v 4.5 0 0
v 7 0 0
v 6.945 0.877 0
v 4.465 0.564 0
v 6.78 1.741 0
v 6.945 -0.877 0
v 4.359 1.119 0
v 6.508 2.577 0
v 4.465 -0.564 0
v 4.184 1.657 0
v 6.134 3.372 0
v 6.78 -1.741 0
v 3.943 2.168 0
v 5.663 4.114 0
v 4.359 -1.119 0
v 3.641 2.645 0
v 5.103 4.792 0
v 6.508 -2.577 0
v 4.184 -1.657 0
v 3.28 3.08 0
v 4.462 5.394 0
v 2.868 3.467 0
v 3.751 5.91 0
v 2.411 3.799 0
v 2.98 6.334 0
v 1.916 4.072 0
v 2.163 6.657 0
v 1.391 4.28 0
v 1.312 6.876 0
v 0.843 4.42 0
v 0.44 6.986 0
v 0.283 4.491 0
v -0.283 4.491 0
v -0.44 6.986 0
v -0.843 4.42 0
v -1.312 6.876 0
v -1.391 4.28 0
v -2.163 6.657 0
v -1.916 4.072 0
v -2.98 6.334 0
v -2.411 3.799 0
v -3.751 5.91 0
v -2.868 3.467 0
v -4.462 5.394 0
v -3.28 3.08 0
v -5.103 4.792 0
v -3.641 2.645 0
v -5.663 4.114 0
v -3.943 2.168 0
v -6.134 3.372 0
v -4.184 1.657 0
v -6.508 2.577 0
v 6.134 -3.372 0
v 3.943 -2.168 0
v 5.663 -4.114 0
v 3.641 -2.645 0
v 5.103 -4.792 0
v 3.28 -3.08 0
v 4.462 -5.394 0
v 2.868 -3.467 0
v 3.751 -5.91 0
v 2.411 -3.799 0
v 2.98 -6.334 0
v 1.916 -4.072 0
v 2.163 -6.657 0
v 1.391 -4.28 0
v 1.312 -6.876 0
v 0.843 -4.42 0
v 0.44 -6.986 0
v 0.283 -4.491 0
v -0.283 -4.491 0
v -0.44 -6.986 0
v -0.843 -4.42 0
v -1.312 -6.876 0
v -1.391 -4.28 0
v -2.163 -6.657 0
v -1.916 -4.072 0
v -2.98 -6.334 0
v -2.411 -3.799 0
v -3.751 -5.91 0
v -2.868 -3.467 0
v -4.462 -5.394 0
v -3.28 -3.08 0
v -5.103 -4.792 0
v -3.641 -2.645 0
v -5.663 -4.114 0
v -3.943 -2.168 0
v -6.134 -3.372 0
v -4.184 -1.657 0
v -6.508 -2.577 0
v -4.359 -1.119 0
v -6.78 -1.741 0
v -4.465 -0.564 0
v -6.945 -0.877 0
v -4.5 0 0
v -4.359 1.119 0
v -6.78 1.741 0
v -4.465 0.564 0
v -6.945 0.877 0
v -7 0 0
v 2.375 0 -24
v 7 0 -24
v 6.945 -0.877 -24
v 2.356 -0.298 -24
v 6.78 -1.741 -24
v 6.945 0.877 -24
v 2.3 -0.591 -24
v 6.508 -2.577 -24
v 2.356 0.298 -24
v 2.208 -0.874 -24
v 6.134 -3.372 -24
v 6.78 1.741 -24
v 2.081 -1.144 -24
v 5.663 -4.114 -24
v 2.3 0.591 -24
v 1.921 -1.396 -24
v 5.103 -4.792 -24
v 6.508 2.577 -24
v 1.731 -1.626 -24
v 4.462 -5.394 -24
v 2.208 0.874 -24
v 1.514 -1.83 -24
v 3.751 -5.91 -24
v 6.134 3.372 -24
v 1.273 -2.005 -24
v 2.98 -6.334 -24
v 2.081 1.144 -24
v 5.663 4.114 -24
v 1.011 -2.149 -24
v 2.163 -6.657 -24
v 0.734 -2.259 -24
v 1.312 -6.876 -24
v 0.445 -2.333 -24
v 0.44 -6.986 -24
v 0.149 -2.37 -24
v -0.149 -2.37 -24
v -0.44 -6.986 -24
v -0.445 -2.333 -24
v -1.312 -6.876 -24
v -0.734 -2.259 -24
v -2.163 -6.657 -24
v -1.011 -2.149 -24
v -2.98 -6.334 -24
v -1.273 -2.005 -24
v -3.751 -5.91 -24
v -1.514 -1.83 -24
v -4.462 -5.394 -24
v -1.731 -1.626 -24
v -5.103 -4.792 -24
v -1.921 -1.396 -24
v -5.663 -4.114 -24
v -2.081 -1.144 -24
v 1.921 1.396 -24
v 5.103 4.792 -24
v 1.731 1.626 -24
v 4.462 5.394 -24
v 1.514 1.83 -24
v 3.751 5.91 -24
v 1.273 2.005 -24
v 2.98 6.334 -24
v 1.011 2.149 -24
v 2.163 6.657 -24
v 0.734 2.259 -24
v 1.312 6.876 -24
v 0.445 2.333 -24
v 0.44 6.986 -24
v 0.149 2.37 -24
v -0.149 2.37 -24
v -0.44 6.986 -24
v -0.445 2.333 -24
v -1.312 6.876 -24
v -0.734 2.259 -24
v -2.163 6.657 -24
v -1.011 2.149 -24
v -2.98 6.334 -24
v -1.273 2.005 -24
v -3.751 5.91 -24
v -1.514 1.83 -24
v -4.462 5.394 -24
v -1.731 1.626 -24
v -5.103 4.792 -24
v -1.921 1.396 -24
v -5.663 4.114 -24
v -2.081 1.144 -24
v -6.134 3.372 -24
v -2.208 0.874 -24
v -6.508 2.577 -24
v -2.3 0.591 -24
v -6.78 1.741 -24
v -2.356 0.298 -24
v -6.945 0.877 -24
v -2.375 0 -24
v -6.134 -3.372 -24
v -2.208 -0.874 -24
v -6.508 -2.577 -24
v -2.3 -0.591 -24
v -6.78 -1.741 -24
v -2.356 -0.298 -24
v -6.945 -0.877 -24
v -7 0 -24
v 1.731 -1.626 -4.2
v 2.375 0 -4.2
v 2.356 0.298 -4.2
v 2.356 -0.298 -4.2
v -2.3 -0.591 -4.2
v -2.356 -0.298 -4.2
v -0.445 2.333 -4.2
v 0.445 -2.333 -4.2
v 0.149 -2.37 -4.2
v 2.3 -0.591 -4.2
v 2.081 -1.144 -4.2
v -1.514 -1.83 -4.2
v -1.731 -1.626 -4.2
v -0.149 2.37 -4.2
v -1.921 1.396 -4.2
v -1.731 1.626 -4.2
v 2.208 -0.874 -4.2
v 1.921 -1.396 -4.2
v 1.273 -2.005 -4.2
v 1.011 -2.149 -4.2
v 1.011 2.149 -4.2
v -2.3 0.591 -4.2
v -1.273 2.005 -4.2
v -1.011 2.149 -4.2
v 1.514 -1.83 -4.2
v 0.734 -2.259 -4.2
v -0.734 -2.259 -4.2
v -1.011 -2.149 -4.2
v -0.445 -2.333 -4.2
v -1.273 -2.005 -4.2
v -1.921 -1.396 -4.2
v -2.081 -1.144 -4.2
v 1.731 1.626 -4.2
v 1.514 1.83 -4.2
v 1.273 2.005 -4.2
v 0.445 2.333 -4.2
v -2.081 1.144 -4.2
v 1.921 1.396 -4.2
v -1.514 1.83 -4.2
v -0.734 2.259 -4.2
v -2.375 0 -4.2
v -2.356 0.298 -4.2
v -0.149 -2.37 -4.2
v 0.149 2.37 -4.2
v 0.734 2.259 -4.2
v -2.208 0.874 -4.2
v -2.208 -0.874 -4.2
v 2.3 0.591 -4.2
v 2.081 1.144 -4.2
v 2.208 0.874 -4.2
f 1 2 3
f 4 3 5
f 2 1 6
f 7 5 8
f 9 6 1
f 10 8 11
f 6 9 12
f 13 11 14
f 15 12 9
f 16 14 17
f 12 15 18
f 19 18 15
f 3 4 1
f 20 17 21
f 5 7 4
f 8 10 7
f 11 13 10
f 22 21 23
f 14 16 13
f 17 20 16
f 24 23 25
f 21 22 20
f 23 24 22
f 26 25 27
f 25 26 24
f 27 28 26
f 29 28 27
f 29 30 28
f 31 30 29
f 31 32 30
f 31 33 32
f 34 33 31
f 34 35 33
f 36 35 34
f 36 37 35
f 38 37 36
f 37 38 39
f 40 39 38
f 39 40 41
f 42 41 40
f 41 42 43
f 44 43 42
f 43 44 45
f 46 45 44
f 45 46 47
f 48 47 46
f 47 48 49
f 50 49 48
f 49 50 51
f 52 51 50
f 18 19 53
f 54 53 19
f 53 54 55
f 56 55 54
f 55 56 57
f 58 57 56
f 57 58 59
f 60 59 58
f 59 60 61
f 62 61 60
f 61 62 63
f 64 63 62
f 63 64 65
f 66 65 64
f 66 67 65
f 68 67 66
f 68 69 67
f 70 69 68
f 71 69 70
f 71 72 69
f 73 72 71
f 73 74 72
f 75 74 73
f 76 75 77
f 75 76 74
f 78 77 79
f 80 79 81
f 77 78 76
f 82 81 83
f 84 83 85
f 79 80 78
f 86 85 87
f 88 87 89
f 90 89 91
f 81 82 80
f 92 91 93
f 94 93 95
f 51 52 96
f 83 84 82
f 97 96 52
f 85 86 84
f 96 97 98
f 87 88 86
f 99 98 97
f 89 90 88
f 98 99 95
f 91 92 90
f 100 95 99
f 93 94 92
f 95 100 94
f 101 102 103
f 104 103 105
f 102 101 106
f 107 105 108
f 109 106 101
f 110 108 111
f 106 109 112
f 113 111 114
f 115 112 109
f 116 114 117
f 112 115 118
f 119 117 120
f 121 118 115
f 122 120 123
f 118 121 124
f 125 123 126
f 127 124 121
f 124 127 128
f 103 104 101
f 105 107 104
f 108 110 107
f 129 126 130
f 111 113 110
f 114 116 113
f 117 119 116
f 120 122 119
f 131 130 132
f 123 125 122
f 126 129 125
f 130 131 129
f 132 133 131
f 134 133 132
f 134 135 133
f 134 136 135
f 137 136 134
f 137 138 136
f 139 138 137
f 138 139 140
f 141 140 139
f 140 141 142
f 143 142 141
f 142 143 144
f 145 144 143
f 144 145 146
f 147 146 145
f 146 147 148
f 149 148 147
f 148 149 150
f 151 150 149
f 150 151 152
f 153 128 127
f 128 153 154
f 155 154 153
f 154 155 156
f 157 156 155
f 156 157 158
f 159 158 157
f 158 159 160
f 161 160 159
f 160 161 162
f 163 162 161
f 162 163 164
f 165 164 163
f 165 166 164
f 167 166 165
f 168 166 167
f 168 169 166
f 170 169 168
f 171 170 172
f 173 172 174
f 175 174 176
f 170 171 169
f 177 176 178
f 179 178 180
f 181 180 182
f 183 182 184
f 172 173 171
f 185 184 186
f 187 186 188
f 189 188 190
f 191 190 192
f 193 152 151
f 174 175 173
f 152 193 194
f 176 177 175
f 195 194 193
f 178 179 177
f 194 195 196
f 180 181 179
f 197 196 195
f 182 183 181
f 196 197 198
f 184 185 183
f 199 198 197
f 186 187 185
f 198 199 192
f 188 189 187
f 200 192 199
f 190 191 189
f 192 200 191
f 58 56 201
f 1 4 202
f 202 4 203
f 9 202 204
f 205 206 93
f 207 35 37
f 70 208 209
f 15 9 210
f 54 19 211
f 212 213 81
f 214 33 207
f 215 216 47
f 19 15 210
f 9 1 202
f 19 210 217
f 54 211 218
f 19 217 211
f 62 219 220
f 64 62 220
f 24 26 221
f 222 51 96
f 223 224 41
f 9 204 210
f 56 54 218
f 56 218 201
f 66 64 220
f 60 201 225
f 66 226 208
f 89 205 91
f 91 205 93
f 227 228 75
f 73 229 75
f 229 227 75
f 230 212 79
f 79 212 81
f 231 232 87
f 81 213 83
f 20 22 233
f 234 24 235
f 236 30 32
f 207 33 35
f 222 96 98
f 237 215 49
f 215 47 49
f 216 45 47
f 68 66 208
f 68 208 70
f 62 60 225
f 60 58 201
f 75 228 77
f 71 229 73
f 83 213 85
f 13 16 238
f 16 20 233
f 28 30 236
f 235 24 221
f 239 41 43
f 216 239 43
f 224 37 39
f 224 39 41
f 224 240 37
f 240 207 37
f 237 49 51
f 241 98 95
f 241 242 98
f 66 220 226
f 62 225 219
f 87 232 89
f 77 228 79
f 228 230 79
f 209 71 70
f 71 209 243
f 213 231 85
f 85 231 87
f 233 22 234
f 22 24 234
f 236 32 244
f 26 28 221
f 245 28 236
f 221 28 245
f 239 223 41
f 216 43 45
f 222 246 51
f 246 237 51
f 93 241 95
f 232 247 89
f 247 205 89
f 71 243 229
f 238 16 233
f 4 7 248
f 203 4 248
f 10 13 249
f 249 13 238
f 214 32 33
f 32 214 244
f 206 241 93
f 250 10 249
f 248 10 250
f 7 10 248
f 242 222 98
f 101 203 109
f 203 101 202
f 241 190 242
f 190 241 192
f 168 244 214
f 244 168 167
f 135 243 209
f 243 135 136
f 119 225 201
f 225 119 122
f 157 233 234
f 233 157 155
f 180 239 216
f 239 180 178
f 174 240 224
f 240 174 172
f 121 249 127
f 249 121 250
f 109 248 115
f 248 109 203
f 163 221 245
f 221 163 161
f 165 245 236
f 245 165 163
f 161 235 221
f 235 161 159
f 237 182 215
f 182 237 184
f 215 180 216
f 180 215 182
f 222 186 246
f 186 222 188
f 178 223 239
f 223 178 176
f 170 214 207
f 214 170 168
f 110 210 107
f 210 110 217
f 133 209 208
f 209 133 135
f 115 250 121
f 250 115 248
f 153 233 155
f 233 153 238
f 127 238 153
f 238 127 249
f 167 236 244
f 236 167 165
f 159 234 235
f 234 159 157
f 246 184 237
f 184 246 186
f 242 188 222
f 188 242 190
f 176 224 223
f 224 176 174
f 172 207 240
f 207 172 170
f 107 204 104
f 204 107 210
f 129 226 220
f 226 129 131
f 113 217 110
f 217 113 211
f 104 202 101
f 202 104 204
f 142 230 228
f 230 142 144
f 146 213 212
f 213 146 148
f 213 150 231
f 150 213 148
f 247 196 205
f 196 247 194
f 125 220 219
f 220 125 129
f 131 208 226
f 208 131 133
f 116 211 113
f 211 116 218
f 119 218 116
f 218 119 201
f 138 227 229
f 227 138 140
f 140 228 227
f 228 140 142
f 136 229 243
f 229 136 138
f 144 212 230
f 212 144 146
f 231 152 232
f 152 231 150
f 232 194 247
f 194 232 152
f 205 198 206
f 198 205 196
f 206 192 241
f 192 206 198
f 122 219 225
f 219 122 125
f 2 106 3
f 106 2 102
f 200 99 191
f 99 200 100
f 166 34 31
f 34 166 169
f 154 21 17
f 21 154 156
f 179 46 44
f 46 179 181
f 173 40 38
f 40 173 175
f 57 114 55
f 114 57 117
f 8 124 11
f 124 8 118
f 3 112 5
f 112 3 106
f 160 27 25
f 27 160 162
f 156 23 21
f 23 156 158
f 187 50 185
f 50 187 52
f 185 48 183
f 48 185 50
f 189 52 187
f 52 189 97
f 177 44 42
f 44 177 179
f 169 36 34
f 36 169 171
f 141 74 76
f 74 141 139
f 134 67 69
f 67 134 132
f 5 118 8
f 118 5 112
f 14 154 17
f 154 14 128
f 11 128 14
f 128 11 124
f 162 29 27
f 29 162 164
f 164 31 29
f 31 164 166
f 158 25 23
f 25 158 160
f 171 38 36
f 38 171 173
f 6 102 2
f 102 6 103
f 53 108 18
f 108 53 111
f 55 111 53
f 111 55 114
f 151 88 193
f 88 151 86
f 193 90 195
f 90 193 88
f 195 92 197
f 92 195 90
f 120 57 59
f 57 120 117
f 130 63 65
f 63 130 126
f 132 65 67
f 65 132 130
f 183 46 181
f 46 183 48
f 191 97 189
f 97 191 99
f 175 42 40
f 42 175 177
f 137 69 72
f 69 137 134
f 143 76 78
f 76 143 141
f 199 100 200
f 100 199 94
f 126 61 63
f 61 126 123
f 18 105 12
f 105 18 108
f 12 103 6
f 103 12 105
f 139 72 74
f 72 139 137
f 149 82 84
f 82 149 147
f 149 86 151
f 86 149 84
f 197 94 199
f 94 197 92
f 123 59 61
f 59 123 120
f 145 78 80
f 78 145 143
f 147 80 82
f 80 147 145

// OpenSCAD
$fn = 50;


difference() {
	union() {
		translate(v = [0, 0, -24.0000000000]) {
			cylinder(h = 24, r = 7.0000000000);
		}
		cylinder(h = 0, r = 17.0000000000);
	}
	union() {
		translate(v = [0, 0, 0]) {
			rotate(a = [0, 0, 0]) {
				difference() {
					union() {
						#translate(v = [0, 0, -24.0000000000]) {
							cylinder(h = 24, r = 2.2500000000);
						}
						#translate(v = [0, 0, -4.2000000000]) {
							cylinder(h = 4.2000000000, r = 7.0000000000, r1 = 2.3750000000, r2 = 4.5000000000);
						}
						#translate(v = [0, 0, -24.0000000000]) {
							cylinder(h = 24, r = 2.3750000000);
						}
						#translate(v = [0, 0, -24.0000000000]) {
							cylinder(h = 24, r = 2.2500000000);
						}
					}
					union();
				}
			}
		}
	}
}
